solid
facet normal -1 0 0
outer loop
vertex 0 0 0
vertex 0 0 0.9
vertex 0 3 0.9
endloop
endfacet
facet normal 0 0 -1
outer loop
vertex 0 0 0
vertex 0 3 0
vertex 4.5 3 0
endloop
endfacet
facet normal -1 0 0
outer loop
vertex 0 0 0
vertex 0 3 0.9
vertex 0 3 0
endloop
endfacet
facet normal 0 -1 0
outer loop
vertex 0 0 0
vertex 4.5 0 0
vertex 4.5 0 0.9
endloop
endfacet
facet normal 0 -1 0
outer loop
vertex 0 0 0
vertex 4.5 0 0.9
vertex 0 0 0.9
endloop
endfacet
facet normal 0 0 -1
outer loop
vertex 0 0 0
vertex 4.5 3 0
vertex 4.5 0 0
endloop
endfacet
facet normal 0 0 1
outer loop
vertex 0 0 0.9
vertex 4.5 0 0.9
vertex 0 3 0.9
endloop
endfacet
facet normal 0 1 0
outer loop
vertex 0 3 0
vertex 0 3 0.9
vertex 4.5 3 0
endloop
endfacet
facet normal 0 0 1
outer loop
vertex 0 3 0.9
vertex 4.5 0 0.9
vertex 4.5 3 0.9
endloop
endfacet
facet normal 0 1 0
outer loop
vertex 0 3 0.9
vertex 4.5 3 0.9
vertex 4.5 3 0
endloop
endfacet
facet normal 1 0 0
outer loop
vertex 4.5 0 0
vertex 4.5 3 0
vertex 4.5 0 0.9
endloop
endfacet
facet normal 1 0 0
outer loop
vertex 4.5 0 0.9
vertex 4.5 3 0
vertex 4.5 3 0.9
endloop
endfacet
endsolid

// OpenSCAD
/* Warning, this is a very basic generator with a lot of approximation 
input data : [VDFN, QBB, 4.5x3x0.9mm, 14, , D, C04-21361D]
generated by com.zoubworld.electronics.cad.model3d.Basic
Date : Sun Feb 15 10:50:49 CET 2026
*/

//body
color("black")
translate([0,0,0])
cube([4.5,3.0,0.9], center=false);
